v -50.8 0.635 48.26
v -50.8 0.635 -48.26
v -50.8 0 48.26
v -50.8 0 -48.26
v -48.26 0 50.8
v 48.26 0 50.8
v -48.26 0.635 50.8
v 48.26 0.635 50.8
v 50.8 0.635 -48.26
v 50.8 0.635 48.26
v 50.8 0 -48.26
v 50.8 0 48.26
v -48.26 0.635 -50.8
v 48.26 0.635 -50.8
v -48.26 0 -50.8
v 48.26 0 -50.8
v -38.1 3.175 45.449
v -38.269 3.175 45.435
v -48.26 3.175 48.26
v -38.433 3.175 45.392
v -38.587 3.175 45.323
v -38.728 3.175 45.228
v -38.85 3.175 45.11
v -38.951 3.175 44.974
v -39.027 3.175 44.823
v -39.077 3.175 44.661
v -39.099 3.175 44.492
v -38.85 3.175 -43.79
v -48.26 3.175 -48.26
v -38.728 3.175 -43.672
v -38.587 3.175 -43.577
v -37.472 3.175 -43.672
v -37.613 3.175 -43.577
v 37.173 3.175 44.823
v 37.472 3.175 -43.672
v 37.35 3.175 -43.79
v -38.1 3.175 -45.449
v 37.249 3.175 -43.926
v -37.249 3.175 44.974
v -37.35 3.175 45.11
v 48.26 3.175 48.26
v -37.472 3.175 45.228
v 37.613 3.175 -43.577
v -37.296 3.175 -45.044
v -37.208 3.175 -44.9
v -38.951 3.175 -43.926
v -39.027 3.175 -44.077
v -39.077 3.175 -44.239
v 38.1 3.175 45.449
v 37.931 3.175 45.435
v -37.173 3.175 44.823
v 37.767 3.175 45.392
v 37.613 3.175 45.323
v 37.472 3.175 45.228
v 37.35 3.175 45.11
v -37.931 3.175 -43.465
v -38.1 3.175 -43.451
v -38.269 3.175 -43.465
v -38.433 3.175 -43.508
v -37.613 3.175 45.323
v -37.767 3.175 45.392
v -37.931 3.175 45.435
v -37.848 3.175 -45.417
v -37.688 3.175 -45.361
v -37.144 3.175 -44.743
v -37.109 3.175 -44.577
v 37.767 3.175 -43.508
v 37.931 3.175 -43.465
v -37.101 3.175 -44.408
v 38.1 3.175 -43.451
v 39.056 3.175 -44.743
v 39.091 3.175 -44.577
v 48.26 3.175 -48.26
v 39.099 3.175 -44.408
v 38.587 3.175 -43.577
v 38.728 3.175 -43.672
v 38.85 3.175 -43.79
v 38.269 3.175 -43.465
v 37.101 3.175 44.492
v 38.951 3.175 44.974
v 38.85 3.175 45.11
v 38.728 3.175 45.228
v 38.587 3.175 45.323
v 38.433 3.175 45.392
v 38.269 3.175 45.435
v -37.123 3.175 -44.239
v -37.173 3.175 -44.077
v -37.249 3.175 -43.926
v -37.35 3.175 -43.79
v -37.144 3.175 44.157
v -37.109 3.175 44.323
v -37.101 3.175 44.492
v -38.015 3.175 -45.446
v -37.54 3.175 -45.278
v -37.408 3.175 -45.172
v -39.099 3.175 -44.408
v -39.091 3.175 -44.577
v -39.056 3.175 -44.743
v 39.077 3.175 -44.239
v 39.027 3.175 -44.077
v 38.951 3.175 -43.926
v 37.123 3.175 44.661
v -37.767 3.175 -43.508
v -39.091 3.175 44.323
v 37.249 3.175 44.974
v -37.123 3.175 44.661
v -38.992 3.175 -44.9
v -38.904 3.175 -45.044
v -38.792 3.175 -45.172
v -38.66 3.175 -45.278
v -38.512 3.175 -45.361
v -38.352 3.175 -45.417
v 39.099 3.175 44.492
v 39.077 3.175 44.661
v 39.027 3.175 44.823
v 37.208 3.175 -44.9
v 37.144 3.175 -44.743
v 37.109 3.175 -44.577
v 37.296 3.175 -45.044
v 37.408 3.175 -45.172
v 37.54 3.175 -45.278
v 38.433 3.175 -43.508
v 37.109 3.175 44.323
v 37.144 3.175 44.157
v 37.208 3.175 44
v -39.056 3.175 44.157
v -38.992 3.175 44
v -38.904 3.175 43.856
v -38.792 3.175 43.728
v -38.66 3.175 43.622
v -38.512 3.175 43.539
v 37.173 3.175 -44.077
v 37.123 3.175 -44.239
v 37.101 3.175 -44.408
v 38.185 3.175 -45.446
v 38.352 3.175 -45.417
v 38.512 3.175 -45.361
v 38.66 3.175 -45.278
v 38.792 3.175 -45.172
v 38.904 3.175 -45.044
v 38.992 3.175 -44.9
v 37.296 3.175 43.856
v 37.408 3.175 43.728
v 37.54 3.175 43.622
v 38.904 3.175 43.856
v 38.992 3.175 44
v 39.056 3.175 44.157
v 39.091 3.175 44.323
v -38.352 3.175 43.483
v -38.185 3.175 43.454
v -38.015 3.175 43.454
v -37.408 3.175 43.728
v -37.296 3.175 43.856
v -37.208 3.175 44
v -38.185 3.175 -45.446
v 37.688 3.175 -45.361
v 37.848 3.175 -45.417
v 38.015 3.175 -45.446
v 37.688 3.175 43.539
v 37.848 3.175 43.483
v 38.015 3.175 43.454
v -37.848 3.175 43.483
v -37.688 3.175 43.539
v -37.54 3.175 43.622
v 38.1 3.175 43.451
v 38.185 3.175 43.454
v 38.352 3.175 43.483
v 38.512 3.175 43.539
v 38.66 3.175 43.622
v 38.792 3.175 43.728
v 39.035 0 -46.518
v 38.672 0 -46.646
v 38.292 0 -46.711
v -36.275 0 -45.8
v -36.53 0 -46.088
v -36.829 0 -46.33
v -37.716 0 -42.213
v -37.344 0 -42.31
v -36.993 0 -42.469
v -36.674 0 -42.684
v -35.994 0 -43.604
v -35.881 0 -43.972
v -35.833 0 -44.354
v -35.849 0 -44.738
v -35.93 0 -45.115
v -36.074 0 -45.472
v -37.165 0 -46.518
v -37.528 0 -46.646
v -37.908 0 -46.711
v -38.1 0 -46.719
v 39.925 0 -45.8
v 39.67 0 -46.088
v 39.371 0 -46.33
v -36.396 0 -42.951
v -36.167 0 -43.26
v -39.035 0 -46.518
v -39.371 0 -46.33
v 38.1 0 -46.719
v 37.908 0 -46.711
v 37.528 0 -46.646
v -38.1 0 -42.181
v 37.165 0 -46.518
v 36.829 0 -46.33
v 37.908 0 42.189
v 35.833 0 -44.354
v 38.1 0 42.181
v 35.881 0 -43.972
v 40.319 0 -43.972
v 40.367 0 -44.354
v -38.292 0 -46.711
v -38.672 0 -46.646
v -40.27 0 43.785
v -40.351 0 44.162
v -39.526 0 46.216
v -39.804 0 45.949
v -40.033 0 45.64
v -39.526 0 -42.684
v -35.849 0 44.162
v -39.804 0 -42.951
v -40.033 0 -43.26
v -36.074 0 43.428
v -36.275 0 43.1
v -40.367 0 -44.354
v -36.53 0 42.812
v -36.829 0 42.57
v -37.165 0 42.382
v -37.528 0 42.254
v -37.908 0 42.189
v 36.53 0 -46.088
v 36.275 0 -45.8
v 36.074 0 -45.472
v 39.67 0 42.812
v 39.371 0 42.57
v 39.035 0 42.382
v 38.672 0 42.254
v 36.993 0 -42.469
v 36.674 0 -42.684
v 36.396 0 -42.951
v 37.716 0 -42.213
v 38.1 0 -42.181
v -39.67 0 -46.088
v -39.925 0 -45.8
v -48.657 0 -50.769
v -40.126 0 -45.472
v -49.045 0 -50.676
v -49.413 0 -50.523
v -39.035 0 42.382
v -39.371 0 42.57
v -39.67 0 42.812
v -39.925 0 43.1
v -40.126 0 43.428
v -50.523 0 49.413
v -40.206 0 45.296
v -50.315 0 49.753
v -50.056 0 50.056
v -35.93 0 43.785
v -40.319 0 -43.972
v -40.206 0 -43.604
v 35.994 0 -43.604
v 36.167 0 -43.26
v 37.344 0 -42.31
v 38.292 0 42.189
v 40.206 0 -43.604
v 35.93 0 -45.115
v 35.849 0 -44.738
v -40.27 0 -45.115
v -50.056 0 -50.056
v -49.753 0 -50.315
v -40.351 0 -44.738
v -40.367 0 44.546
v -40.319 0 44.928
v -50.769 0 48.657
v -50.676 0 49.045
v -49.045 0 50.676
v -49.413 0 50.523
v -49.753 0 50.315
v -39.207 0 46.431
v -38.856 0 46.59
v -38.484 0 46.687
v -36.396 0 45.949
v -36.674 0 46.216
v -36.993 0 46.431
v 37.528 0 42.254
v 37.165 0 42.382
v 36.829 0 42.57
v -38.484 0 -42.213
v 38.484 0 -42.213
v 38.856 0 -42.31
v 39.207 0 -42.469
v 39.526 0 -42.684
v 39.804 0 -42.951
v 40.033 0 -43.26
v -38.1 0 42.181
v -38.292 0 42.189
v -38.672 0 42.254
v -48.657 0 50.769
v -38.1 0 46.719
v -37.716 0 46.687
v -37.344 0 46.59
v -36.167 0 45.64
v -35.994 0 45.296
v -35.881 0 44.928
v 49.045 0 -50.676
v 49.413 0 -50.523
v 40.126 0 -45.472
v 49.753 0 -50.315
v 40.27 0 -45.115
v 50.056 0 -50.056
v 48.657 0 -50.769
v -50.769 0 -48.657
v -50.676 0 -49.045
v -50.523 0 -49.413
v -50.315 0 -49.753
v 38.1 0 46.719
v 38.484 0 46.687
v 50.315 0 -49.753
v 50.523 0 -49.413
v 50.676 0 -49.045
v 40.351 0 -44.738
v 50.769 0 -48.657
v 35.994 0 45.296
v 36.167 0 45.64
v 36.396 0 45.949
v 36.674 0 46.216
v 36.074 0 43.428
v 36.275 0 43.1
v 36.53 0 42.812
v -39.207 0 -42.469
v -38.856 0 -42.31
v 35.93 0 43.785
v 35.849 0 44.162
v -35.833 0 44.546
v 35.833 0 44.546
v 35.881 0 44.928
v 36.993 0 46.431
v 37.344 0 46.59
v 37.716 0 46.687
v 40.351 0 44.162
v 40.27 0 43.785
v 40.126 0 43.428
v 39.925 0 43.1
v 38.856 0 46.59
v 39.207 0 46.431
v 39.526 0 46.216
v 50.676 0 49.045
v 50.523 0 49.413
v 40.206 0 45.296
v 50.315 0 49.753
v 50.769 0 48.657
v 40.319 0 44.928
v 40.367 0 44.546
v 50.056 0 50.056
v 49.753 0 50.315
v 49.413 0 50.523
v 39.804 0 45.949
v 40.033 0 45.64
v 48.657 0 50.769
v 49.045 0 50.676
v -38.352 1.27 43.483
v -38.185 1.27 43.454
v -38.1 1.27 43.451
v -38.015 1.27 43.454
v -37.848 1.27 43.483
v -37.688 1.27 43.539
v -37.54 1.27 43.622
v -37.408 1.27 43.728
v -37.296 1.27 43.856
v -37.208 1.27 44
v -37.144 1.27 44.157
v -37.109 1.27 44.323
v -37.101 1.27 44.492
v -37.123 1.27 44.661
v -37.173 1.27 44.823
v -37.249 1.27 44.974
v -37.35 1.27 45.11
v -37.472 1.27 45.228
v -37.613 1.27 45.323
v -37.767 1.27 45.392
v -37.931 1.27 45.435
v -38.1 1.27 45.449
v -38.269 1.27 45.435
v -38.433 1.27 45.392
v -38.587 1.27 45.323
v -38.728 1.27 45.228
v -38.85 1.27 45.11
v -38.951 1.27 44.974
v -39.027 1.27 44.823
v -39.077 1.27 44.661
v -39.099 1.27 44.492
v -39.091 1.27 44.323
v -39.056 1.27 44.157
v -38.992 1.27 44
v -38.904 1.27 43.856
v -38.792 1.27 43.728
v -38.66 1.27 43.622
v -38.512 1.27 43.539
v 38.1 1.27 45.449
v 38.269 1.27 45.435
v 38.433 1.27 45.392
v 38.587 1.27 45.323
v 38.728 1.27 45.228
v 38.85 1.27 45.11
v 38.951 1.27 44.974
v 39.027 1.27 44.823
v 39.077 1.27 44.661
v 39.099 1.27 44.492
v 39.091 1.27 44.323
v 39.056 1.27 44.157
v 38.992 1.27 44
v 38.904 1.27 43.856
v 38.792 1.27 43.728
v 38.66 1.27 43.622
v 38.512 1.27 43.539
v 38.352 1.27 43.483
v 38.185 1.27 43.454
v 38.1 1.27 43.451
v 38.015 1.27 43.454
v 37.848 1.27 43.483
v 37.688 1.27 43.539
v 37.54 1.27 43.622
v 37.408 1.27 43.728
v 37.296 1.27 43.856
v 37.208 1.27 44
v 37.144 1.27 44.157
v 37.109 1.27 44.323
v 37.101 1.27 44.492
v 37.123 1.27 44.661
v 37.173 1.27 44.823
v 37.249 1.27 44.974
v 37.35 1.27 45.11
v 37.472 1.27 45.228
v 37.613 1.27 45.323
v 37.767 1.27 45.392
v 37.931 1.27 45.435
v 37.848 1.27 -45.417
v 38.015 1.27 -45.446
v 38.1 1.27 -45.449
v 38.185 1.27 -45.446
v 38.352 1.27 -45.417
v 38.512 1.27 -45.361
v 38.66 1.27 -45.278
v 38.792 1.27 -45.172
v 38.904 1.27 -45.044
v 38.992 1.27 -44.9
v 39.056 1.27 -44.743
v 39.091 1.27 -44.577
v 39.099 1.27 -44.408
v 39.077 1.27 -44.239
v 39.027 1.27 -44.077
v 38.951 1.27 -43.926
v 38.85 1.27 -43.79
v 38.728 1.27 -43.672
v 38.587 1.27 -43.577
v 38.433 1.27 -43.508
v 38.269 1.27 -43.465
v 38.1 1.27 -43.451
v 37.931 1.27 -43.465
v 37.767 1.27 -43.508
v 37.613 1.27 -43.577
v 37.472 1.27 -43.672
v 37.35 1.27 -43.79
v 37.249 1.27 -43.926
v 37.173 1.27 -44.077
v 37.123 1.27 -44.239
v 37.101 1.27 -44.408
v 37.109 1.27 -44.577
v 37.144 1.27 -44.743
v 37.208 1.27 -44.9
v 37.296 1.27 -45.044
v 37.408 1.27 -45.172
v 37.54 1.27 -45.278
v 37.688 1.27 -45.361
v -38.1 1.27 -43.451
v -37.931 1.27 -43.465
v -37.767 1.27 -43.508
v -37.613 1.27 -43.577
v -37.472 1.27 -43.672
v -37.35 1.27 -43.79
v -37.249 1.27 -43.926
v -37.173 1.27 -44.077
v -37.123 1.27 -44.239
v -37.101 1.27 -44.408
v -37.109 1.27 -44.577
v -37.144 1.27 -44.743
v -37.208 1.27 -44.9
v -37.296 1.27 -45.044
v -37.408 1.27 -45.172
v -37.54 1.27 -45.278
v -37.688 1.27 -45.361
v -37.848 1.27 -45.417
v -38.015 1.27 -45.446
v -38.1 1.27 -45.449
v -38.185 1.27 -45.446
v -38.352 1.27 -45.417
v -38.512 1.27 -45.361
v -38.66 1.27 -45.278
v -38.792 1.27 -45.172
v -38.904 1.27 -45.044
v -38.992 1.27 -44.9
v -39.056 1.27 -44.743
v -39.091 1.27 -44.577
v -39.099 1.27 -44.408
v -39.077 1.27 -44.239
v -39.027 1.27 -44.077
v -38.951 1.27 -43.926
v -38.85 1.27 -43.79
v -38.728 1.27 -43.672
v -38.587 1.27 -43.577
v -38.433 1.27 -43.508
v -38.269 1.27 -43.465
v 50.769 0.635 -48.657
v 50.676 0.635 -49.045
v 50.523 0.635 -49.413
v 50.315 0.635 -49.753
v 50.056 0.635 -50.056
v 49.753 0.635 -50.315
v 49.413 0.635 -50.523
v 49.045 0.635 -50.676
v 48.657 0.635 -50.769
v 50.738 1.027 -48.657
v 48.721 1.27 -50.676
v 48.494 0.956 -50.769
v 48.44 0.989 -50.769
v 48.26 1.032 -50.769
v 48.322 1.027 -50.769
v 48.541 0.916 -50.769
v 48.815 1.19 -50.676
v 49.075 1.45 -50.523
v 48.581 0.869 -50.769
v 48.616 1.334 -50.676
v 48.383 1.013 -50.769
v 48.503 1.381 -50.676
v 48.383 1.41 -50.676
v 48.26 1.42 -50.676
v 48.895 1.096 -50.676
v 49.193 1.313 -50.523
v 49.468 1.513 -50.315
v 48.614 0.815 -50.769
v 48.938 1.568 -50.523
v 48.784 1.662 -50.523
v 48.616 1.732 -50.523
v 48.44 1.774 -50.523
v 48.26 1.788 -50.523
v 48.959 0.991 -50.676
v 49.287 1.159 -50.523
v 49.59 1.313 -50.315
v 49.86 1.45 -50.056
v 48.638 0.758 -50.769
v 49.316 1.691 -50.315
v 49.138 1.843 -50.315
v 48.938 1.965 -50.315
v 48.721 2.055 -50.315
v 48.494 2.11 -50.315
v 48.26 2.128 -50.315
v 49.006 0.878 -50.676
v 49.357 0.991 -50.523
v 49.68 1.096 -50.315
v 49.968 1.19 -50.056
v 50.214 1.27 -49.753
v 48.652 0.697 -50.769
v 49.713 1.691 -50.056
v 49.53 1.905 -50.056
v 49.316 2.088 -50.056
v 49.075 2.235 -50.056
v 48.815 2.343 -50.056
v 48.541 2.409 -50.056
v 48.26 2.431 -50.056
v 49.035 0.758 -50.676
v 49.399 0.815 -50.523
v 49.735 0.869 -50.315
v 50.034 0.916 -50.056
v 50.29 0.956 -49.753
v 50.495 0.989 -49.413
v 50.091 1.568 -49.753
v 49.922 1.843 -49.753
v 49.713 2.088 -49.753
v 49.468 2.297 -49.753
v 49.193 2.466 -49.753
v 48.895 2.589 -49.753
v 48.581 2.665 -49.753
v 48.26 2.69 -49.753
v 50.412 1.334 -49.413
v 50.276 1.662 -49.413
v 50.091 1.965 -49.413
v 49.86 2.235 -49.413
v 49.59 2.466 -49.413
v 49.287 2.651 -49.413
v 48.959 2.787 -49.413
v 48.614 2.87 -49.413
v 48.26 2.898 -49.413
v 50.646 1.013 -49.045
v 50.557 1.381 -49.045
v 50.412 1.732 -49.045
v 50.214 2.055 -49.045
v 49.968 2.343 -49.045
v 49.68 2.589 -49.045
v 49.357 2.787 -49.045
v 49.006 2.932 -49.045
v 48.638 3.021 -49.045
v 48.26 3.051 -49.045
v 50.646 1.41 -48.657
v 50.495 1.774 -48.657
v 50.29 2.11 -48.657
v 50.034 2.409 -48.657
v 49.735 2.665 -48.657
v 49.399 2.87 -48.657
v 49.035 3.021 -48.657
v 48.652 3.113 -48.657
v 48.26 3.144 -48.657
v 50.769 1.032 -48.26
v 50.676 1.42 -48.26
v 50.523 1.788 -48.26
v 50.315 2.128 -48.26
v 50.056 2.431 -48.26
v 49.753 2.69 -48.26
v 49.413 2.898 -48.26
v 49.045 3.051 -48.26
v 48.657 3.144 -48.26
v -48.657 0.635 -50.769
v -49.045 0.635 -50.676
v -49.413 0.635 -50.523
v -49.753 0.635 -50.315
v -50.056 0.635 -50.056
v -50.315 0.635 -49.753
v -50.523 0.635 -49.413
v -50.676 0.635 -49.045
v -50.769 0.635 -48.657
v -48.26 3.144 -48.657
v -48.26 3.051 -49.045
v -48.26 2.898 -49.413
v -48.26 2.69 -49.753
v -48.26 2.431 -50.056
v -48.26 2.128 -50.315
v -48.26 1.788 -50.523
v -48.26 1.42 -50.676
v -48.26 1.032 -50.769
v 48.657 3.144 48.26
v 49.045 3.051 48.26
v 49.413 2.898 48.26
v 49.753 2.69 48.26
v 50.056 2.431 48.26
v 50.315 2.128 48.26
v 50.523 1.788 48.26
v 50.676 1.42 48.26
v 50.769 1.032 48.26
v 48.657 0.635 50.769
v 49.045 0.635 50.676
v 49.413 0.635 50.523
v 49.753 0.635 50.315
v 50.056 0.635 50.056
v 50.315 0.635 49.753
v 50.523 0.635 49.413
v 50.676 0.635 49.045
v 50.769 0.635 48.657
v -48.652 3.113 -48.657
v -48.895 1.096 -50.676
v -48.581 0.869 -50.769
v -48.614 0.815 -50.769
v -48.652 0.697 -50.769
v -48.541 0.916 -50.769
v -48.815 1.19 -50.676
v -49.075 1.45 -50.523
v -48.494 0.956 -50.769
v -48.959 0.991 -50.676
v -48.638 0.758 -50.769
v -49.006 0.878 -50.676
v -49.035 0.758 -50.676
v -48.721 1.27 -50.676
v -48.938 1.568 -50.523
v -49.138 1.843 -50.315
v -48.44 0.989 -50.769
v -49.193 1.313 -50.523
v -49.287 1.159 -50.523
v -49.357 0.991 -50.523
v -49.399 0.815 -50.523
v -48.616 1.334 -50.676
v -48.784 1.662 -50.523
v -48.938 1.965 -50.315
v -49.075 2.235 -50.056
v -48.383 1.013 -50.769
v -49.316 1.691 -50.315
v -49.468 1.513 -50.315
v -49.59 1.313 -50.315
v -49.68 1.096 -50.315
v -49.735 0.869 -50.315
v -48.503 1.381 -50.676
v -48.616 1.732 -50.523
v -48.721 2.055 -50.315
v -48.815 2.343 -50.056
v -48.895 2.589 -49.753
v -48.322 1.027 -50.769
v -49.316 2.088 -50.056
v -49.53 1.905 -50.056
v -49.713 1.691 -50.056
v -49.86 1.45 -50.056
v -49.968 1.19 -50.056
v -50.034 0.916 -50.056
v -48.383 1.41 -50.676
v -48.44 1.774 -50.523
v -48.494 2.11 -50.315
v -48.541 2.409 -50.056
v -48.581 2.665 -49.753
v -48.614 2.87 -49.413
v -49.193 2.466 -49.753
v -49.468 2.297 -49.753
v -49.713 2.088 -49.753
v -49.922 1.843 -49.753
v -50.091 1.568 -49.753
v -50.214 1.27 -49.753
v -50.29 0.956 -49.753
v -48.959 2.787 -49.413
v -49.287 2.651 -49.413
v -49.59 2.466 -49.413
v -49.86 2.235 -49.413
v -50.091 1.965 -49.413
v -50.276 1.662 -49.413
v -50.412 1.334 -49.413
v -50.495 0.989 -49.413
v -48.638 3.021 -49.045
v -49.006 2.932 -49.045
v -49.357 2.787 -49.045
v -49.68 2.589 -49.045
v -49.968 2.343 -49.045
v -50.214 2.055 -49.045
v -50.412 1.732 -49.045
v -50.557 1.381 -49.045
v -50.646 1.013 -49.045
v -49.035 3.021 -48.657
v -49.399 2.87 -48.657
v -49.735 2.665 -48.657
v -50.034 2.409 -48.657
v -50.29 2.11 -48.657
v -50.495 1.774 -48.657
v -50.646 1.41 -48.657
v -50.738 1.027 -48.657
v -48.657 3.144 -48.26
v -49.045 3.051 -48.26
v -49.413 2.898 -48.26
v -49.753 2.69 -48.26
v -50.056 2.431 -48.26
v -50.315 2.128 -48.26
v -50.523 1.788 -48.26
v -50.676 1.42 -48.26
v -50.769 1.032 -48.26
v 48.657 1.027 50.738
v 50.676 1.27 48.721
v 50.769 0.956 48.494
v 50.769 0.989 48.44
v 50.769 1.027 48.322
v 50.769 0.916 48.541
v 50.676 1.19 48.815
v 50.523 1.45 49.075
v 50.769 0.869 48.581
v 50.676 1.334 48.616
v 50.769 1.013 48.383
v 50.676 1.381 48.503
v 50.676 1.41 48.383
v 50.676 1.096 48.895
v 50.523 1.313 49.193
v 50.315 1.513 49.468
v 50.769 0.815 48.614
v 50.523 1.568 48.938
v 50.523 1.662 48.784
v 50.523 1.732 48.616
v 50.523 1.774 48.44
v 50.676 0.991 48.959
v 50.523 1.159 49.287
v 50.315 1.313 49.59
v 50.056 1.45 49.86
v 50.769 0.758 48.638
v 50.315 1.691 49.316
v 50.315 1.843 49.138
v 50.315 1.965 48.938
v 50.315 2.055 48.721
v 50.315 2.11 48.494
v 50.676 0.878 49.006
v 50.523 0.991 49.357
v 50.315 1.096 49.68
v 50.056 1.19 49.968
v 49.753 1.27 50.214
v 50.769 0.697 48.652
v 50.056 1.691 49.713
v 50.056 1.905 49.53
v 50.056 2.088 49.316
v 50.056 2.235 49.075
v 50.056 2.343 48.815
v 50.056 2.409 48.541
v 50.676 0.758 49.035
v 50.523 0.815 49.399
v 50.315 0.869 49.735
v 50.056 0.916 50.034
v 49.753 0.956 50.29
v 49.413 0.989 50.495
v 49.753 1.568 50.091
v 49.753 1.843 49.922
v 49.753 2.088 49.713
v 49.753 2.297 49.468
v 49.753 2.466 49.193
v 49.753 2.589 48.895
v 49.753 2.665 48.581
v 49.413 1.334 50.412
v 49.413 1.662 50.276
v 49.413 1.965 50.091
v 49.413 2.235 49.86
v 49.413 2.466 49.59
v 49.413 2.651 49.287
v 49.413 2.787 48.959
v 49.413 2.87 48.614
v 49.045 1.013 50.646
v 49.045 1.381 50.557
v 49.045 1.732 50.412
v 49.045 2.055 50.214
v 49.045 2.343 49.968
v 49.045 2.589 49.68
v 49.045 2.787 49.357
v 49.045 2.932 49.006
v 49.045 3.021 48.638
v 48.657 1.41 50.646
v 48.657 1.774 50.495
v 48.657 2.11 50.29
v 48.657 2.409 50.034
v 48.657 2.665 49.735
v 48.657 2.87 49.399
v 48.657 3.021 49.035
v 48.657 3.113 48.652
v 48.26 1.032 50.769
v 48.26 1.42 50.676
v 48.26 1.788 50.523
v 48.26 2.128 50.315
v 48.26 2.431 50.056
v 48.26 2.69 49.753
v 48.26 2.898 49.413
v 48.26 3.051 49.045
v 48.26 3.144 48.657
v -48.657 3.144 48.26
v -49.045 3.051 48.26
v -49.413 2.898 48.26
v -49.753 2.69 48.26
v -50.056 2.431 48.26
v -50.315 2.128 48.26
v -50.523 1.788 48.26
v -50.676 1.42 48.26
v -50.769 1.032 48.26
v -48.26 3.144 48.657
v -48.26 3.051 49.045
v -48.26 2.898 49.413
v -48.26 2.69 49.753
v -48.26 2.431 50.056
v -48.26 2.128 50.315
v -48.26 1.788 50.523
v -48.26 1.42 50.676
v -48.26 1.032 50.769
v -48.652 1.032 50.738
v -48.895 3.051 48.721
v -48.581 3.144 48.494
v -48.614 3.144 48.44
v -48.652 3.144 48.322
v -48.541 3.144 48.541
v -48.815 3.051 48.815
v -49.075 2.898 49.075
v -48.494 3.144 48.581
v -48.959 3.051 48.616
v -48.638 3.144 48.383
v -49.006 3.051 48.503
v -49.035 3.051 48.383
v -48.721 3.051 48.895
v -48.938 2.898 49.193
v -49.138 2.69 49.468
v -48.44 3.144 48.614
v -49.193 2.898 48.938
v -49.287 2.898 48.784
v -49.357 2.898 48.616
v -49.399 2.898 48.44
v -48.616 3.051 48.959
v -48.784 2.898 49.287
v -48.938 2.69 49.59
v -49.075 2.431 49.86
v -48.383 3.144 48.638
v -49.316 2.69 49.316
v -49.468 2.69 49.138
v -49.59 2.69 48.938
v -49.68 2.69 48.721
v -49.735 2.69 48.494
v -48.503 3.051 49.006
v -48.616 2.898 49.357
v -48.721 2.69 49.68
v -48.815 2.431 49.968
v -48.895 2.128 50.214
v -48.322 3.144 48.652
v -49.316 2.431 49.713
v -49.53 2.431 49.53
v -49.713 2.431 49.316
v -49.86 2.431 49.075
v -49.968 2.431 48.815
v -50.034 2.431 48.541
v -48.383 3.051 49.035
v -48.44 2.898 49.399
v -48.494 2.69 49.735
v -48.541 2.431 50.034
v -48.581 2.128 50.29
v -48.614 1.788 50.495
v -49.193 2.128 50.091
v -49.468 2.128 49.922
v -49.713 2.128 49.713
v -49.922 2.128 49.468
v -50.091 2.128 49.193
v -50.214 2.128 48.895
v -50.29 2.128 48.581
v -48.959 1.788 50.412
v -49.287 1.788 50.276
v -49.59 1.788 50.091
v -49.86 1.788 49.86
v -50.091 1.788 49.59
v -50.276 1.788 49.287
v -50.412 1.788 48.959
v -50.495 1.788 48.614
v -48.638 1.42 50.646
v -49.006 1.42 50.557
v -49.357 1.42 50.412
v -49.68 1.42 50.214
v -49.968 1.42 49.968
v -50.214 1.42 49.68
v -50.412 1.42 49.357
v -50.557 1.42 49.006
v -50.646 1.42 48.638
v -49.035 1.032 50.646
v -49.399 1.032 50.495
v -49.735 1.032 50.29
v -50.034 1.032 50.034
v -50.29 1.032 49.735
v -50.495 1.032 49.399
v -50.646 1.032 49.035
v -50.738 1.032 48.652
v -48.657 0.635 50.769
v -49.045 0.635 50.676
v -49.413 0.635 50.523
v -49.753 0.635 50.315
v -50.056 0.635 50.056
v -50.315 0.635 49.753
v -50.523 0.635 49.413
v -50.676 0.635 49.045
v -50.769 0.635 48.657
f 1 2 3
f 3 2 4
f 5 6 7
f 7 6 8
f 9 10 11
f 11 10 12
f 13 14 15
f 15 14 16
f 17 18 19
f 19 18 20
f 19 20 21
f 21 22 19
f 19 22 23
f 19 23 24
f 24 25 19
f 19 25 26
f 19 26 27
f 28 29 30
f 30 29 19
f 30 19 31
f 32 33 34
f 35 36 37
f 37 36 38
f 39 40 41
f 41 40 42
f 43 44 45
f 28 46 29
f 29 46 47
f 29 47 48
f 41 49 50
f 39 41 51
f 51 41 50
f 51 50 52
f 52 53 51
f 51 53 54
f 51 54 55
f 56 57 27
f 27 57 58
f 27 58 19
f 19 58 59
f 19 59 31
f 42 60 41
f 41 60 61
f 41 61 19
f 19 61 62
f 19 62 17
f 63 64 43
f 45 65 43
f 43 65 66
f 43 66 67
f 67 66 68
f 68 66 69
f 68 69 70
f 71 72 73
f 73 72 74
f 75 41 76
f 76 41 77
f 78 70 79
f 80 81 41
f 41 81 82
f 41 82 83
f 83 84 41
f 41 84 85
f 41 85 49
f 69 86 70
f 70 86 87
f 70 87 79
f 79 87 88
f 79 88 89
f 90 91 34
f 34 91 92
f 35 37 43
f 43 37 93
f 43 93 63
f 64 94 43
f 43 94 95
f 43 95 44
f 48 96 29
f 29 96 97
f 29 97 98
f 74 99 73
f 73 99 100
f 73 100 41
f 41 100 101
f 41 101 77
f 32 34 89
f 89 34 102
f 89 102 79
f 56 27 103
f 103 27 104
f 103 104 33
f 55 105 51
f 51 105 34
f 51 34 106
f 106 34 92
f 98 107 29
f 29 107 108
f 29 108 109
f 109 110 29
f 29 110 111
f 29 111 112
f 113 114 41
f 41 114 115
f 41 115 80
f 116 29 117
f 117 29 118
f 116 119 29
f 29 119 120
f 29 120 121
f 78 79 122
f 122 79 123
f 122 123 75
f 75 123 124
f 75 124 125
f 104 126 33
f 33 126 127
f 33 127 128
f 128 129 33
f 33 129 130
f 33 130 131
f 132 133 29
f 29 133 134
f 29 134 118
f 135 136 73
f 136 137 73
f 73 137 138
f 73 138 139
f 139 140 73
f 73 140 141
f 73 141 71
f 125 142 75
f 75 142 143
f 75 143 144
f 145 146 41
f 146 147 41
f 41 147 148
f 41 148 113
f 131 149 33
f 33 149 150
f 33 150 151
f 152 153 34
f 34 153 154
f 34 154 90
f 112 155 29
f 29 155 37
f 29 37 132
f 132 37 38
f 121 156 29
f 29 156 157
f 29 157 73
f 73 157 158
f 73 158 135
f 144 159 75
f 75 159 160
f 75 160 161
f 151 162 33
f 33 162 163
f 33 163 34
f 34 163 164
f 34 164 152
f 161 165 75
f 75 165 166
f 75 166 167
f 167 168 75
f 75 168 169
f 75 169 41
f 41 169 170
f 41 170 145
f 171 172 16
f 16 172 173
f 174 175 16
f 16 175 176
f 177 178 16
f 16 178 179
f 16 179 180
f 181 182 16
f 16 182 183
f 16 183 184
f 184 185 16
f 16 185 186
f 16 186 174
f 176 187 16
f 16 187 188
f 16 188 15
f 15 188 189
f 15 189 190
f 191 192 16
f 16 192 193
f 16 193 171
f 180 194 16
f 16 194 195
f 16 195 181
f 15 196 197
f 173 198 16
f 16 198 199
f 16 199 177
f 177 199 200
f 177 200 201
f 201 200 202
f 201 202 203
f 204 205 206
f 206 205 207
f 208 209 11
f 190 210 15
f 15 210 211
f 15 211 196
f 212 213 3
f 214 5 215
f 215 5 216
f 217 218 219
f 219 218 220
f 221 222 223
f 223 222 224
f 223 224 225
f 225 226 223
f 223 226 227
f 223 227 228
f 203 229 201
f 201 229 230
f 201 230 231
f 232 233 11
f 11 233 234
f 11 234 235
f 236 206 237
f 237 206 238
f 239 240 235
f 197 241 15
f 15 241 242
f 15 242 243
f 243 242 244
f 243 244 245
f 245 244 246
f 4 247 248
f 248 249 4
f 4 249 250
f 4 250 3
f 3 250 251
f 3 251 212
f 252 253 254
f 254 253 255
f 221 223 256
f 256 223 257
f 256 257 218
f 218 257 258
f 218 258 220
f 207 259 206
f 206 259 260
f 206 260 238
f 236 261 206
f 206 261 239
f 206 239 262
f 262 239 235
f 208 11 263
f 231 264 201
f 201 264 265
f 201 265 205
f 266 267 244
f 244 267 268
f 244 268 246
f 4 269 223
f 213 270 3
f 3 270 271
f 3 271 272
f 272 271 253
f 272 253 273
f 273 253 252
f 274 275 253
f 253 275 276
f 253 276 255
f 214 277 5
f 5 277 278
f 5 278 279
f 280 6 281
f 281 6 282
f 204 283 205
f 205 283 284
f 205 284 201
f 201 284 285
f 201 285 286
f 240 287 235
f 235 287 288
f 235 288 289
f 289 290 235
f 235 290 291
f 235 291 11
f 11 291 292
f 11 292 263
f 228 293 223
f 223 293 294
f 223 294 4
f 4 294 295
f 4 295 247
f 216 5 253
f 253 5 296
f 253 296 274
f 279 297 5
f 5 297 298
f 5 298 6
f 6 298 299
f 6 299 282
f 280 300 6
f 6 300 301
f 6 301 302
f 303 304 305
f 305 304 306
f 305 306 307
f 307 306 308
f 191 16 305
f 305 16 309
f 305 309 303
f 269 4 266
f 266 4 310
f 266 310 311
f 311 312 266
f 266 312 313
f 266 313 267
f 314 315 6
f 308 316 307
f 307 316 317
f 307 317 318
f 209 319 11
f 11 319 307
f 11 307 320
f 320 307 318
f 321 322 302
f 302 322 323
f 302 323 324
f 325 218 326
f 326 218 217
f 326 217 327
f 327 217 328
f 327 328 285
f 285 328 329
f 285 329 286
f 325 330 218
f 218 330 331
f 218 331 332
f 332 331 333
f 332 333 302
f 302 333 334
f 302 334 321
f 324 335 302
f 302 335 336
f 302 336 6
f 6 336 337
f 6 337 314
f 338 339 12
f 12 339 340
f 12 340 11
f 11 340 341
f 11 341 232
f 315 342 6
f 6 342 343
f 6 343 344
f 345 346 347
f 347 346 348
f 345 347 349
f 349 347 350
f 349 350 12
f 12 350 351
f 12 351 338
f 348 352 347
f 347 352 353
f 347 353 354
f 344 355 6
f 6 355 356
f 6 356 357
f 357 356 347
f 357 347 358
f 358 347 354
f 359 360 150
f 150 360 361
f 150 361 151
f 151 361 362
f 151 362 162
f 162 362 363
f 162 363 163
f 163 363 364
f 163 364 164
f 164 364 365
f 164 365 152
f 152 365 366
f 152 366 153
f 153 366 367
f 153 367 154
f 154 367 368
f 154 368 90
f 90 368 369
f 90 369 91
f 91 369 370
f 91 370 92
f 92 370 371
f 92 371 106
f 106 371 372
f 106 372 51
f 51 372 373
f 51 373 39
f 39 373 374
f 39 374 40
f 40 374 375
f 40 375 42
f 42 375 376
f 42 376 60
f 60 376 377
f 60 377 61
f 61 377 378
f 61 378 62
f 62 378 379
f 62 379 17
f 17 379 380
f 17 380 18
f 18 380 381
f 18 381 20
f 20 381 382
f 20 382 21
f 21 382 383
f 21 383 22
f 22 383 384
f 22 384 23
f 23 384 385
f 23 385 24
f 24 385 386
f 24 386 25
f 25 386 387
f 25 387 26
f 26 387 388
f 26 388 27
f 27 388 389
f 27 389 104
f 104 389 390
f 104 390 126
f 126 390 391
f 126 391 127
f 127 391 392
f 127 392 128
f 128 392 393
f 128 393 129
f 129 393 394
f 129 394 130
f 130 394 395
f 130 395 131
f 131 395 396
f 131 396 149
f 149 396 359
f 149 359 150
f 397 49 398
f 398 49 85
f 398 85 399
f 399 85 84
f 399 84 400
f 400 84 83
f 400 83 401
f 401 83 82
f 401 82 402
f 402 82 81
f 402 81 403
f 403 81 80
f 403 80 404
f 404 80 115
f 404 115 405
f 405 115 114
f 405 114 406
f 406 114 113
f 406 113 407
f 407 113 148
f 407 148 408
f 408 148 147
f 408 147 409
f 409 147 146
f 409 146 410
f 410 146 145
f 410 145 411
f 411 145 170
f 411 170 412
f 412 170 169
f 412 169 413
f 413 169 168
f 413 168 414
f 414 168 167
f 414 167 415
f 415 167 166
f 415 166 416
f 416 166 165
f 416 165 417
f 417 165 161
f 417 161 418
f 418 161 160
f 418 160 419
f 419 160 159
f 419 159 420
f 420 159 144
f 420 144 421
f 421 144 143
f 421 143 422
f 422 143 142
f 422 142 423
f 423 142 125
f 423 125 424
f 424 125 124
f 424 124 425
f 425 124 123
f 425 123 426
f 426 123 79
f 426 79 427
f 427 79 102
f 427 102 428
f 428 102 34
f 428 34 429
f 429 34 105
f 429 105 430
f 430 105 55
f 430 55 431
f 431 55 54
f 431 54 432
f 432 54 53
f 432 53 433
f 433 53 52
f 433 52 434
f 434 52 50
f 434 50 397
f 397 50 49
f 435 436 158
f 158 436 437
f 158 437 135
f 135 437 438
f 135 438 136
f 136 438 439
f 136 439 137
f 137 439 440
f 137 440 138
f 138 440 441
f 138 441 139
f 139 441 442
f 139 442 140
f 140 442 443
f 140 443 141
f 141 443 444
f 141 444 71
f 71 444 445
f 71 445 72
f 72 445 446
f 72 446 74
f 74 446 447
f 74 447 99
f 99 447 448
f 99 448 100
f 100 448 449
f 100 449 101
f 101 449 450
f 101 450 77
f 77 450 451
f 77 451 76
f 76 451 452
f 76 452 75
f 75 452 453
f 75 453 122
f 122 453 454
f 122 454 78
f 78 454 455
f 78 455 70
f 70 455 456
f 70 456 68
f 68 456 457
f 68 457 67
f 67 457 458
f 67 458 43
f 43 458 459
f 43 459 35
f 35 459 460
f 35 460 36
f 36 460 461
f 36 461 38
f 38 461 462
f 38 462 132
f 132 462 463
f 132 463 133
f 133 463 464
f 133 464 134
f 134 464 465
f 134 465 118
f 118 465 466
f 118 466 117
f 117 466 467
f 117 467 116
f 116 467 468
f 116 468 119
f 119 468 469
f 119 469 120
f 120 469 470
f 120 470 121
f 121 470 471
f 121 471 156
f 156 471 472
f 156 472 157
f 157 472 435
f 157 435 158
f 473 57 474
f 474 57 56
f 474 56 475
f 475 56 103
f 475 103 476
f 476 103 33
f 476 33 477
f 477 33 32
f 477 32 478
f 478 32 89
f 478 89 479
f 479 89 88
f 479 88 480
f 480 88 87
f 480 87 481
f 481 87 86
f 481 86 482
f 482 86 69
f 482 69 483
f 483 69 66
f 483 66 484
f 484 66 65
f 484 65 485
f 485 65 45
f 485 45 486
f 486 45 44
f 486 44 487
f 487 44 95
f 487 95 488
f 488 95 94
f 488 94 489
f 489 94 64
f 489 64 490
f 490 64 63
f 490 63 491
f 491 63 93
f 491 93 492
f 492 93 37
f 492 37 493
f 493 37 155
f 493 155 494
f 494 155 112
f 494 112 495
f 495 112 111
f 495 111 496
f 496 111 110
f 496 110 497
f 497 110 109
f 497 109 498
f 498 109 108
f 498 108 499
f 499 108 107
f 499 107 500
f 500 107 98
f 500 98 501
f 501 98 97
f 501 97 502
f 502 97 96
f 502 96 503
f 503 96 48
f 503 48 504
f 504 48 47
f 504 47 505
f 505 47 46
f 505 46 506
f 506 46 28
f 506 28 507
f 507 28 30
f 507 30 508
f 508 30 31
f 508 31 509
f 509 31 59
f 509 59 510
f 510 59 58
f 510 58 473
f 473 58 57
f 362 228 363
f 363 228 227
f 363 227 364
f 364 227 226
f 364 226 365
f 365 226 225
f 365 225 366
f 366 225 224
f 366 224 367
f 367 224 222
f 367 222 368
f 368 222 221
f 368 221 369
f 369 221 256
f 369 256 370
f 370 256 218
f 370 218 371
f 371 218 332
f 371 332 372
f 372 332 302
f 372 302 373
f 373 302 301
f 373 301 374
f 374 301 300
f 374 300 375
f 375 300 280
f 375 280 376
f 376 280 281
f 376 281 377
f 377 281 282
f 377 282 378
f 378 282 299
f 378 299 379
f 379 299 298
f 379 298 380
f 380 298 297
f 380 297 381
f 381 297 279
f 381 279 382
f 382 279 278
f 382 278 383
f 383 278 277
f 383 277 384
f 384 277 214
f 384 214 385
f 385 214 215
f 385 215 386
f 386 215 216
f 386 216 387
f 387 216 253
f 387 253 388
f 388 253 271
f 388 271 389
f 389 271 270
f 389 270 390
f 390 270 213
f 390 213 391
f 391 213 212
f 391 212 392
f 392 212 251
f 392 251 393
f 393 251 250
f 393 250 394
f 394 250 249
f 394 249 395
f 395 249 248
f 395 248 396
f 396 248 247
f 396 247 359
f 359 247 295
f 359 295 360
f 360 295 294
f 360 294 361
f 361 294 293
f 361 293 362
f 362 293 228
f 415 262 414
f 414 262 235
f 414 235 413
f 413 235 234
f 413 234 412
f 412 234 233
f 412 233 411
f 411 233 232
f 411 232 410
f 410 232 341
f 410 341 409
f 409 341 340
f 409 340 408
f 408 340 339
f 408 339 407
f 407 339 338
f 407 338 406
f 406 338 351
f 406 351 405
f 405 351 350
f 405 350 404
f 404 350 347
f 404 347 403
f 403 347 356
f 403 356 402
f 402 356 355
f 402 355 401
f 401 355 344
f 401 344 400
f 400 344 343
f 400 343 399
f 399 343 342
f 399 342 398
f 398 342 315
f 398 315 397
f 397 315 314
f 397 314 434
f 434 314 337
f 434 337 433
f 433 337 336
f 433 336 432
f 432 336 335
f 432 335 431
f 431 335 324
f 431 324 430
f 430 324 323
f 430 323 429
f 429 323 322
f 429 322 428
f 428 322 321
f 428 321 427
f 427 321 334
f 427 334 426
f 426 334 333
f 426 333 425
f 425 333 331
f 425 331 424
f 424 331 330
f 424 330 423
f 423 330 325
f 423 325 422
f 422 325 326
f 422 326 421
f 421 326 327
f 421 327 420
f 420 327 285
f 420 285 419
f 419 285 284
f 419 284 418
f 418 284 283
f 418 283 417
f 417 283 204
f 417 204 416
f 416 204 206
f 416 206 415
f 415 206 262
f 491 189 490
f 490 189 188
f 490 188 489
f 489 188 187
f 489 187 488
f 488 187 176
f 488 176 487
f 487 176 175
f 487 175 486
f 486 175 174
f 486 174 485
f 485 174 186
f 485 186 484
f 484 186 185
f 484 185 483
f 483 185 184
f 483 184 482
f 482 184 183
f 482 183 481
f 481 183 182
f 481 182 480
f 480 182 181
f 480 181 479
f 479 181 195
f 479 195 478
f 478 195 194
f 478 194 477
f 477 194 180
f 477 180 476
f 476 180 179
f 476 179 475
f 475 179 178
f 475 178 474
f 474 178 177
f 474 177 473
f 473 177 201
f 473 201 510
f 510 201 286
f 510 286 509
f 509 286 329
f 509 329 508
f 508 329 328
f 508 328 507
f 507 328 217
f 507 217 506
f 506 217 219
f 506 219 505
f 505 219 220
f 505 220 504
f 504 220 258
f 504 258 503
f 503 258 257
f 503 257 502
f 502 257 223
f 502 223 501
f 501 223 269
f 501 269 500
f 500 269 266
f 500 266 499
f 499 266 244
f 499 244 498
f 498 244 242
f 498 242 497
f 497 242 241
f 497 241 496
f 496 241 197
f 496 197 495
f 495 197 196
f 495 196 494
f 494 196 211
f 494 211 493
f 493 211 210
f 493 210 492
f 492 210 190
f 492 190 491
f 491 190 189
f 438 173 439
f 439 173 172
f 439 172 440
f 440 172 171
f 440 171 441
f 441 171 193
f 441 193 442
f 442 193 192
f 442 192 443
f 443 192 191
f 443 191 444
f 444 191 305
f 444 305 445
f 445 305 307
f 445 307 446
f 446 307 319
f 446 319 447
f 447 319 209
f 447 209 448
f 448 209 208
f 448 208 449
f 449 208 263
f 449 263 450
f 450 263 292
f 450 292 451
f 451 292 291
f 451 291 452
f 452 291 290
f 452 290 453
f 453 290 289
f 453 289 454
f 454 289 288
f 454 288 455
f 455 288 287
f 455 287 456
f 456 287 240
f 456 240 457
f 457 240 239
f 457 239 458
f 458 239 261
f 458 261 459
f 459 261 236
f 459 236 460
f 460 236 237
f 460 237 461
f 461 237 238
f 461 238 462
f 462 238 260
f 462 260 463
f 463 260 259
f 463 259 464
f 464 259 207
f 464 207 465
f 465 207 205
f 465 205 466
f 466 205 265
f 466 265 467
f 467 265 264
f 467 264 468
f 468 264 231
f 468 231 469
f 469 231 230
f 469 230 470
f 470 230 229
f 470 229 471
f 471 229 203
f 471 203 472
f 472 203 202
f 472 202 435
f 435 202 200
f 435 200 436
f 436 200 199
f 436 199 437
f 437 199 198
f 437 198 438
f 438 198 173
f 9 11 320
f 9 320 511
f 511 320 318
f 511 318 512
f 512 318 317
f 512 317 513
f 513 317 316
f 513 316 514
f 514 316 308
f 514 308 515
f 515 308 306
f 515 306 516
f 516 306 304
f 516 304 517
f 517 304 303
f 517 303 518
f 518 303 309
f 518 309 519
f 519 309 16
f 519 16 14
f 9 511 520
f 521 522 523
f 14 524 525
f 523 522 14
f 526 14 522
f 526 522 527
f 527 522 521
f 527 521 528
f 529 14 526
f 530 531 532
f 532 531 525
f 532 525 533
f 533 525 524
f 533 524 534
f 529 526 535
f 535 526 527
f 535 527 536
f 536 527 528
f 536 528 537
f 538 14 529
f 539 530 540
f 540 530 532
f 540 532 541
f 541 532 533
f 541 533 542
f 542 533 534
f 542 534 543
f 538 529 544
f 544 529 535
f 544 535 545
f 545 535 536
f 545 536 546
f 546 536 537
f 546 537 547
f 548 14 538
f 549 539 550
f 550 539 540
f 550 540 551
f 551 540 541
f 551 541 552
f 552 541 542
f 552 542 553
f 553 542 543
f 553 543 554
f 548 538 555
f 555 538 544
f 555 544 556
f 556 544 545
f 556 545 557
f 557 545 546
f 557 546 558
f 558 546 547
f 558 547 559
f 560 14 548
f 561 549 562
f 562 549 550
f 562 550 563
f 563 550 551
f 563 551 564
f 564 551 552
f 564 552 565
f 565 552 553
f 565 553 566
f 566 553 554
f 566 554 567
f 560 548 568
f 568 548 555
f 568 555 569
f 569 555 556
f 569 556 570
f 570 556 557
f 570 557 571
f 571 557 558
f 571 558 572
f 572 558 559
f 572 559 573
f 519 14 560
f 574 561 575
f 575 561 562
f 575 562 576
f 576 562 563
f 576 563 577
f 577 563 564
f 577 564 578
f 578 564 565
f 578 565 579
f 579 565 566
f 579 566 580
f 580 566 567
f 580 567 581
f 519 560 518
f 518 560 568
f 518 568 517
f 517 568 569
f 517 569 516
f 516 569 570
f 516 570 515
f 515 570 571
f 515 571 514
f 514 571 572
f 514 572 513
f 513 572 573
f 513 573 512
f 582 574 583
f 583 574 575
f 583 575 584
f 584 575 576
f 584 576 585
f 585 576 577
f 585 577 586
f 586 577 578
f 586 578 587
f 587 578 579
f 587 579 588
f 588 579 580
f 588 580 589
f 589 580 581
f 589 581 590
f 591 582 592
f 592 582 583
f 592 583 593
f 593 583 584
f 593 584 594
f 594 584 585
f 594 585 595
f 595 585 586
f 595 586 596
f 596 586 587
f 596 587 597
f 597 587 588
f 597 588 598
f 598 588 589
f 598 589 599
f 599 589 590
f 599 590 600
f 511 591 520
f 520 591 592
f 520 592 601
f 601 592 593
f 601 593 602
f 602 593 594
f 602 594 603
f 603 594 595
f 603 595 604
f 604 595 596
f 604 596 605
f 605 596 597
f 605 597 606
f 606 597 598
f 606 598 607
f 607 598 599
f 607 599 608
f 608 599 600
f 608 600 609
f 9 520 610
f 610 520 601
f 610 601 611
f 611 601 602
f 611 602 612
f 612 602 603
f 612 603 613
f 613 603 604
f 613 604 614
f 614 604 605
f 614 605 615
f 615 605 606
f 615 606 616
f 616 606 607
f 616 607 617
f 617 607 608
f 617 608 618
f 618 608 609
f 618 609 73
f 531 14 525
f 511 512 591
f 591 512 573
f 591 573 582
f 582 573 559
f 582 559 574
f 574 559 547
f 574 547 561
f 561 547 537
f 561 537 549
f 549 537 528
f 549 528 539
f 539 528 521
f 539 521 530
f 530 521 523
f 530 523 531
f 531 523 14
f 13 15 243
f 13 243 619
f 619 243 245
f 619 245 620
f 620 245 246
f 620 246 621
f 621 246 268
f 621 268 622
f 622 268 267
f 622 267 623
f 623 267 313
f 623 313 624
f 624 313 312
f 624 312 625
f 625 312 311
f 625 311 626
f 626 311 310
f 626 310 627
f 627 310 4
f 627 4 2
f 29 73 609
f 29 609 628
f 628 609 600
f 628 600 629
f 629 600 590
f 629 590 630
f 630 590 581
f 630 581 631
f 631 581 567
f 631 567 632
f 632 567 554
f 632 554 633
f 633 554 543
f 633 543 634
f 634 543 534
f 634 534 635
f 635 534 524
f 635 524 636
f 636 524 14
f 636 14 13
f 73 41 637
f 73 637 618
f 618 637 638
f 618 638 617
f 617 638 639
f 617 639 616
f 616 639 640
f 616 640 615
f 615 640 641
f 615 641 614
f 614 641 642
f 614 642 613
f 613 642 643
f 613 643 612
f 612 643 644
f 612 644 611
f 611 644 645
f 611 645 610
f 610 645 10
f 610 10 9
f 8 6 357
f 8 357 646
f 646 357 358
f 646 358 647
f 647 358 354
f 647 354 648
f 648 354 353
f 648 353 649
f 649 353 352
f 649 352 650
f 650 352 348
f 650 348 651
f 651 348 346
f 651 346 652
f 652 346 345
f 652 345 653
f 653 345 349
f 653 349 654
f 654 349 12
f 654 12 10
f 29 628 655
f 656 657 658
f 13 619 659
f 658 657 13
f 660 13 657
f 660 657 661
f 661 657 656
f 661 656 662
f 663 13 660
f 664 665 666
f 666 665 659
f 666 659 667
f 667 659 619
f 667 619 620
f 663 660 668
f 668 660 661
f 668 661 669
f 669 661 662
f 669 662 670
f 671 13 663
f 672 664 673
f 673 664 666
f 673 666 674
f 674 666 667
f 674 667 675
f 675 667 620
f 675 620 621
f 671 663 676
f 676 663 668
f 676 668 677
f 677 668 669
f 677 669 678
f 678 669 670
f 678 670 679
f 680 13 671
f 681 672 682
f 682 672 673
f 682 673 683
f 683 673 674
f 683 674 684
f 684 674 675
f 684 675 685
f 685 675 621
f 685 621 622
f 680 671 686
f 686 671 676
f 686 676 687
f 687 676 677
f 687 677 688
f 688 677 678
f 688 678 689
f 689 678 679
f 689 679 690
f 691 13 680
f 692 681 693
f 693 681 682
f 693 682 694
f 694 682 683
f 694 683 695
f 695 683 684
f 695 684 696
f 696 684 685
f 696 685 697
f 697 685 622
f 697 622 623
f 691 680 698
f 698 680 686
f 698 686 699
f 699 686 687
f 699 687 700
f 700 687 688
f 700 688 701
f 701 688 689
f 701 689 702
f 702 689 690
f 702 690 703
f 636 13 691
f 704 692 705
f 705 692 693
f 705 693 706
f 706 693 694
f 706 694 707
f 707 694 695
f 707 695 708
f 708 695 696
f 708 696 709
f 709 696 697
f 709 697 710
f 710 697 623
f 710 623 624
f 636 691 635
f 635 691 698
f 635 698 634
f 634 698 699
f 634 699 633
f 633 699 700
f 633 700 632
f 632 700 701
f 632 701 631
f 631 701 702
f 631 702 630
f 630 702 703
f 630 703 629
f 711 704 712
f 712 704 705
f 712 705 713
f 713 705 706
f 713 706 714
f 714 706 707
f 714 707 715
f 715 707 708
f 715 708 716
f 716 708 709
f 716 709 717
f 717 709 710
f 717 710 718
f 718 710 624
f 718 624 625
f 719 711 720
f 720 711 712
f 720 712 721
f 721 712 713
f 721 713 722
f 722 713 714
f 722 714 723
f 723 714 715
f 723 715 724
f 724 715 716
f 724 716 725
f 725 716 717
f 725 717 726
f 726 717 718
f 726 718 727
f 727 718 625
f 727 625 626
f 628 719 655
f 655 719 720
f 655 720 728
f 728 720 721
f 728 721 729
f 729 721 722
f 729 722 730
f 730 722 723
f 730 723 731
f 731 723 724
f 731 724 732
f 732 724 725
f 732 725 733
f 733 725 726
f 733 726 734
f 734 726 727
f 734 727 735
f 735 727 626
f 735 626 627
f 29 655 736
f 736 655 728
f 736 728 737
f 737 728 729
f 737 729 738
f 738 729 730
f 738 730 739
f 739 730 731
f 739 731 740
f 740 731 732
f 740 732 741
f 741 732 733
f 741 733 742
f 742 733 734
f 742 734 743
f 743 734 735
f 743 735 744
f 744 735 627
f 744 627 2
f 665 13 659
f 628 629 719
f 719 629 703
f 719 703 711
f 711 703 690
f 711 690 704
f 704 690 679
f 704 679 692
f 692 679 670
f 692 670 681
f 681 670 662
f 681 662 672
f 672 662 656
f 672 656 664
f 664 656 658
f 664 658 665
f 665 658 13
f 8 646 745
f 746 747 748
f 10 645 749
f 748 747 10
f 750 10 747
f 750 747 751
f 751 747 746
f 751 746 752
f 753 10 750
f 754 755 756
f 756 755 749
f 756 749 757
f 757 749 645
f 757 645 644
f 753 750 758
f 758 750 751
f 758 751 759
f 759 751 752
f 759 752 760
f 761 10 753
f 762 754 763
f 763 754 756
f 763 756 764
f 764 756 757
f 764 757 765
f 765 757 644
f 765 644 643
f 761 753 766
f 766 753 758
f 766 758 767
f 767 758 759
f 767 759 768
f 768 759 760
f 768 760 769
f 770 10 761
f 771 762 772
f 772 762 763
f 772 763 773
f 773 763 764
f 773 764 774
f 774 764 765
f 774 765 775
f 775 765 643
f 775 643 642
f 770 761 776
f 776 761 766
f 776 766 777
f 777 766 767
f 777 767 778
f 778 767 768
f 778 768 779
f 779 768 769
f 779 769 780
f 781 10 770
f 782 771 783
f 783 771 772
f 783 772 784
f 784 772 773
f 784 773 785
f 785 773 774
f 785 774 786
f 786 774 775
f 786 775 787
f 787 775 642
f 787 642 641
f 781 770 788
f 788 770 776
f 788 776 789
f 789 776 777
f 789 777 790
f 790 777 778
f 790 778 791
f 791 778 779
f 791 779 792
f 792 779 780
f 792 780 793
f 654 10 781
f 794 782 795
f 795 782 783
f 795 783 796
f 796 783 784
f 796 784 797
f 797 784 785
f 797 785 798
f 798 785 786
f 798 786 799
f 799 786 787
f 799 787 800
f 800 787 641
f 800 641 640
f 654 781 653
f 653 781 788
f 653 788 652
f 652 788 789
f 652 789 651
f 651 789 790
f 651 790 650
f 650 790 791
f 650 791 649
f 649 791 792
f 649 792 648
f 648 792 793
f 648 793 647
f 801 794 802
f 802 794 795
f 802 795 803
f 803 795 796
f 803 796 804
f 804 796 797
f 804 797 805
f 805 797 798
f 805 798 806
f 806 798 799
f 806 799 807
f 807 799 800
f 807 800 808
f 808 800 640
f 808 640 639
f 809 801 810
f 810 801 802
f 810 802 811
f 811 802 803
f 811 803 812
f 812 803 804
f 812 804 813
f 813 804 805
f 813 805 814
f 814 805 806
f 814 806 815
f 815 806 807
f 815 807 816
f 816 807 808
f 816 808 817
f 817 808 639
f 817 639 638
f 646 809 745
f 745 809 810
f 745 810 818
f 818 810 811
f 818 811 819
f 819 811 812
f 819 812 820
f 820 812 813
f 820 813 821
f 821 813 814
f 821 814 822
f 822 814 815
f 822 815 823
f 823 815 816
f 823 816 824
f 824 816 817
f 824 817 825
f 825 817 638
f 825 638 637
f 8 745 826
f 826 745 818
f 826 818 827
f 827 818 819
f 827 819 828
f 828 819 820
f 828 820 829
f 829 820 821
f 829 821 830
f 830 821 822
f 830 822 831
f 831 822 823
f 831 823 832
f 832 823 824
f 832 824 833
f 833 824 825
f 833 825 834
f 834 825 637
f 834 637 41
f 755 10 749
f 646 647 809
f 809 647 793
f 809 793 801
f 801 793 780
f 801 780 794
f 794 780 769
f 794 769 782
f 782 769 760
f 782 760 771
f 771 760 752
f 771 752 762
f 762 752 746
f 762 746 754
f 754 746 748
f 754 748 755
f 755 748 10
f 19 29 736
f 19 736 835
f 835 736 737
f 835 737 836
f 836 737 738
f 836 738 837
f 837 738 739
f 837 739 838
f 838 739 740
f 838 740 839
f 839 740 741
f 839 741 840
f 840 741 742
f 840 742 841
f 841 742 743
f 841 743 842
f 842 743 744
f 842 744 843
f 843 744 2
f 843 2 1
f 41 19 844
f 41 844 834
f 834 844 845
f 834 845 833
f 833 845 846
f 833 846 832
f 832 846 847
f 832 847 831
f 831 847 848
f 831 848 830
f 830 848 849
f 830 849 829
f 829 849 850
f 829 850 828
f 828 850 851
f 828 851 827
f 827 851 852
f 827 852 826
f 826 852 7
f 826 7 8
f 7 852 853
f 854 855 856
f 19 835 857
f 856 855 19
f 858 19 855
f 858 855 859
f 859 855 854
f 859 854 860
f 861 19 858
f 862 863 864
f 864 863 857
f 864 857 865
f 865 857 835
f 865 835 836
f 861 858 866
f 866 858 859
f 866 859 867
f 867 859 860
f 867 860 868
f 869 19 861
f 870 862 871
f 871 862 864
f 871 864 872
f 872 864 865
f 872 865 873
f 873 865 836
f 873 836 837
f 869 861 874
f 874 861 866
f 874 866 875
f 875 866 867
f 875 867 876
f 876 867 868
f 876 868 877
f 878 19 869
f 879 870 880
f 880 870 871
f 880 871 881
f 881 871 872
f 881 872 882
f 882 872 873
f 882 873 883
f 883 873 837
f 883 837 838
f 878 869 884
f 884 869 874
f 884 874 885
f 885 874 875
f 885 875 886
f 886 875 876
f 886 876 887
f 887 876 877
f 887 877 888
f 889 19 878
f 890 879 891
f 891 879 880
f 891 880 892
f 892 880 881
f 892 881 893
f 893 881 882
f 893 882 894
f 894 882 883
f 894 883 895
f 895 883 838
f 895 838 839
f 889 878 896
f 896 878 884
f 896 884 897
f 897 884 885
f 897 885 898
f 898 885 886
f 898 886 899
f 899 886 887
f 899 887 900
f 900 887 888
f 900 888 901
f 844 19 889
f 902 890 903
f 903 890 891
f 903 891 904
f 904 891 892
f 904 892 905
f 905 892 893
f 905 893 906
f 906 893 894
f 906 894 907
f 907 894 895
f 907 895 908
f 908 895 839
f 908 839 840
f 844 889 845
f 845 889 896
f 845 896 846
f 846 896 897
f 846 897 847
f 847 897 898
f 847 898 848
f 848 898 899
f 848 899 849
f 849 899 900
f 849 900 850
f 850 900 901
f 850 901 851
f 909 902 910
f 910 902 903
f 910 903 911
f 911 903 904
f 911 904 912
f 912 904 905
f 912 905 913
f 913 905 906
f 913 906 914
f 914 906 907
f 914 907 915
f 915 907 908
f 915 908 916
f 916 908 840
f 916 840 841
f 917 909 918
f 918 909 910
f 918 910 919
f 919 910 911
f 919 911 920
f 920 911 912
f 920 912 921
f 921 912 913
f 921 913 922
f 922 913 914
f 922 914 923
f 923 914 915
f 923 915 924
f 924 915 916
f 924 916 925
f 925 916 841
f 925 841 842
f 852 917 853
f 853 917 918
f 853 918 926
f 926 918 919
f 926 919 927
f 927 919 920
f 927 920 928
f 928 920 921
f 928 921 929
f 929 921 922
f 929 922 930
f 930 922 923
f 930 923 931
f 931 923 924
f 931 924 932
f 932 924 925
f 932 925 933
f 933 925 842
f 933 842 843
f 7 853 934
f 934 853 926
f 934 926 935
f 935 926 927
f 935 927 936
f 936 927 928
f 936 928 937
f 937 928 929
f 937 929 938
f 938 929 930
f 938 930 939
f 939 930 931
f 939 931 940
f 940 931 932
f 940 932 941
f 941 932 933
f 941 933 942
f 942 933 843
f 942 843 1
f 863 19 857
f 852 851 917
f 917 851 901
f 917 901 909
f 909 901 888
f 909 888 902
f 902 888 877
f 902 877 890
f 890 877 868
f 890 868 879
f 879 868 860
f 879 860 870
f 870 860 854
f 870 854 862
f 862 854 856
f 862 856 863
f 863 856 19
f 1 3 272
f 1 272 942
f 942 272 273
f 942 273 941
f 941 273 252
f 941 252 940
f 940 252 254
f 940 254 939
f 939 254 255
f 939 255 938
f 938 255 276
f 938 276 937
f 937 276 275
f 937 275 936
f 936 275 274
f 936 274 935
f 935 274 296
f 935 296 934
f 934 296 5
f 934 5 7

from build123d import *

# Parameters (mm, degrees)
SKETCH1_W           = 101.6
SKETCH1_H           = 101.6
BOSS_EXTRUDE1_DEPTH = 3.175
SKETCH2_R           = 0.99949
CUT_EXTRUDE1_DEPTH  = 3.175
CHAMFER1_SIZE       = 1.27
FILLET1_R           = 2.54


with BuildPart() as part:
    # Sketch1 → Boss-Extrude1 (new body)
    with BuildSketch(Plane(origin=(0, 0, 0), x_dir=(1, 0, 0), z_dir=(0, 1, 0))):
        Rectangle(SKETCH1_W, SKETCH1_H)
    extrude(amount=BOSS_EXTRUDE1_DEPTH)

    # Sketch2 → Cut-Extrude1 (cut)
    with BuildSketch(Plane(origin=(0, 3.175, 0), x_dir=(1, 0, 0), z_dir=(0, 1, 0))):
        with Locations((-38.1, -44.45)):
            Circle(SKETCH2_R)
        with Locations((38.1, -44.45)):
            Circle(SKETCH2_R)
        with Locations((38.1, 44.45)):
            Circle(SKETCH2_R)
        with Locations((-38.1, 44.45)):
            Circle(SKETCH2_R)
    extrude(amount=-CUT_EXTRUDE1_DEPTH, mode=Mode.SUBTRACT)

    # Chamfer1
    chamfer1_edges = [part.edges().sort_by_distance(p)[0] for p in [
        (-39.09949, 0, -44.45),
        (37.10051, 0, -44.45),
        (37.10051, 0, 44.45),
        (-39.09949, 0, 44.45),
    ]]
    chamfer(chamfer1_edges, length=CHAMFER1_SIZE)

    # Fillet1
    fillet1_edges = [part.edges().sort_by_distance(p)[0] for p in [
        (50.8, 3.175, 0),
        (0, 3.175, -50.8),
        (-50.8, 3.175, 0),
        (-50.8, 1.5875, -50.8),
        (50.8, 1.5875, -50.8),
        (50.8, 1.5875, 50.8),
        (-50.8, 1.5875, 50.8),
        (0, 3.175, 50.8),
    ]]
    fillet(fillet1_edges, radius=FILLET1_R)


solid = part.part
